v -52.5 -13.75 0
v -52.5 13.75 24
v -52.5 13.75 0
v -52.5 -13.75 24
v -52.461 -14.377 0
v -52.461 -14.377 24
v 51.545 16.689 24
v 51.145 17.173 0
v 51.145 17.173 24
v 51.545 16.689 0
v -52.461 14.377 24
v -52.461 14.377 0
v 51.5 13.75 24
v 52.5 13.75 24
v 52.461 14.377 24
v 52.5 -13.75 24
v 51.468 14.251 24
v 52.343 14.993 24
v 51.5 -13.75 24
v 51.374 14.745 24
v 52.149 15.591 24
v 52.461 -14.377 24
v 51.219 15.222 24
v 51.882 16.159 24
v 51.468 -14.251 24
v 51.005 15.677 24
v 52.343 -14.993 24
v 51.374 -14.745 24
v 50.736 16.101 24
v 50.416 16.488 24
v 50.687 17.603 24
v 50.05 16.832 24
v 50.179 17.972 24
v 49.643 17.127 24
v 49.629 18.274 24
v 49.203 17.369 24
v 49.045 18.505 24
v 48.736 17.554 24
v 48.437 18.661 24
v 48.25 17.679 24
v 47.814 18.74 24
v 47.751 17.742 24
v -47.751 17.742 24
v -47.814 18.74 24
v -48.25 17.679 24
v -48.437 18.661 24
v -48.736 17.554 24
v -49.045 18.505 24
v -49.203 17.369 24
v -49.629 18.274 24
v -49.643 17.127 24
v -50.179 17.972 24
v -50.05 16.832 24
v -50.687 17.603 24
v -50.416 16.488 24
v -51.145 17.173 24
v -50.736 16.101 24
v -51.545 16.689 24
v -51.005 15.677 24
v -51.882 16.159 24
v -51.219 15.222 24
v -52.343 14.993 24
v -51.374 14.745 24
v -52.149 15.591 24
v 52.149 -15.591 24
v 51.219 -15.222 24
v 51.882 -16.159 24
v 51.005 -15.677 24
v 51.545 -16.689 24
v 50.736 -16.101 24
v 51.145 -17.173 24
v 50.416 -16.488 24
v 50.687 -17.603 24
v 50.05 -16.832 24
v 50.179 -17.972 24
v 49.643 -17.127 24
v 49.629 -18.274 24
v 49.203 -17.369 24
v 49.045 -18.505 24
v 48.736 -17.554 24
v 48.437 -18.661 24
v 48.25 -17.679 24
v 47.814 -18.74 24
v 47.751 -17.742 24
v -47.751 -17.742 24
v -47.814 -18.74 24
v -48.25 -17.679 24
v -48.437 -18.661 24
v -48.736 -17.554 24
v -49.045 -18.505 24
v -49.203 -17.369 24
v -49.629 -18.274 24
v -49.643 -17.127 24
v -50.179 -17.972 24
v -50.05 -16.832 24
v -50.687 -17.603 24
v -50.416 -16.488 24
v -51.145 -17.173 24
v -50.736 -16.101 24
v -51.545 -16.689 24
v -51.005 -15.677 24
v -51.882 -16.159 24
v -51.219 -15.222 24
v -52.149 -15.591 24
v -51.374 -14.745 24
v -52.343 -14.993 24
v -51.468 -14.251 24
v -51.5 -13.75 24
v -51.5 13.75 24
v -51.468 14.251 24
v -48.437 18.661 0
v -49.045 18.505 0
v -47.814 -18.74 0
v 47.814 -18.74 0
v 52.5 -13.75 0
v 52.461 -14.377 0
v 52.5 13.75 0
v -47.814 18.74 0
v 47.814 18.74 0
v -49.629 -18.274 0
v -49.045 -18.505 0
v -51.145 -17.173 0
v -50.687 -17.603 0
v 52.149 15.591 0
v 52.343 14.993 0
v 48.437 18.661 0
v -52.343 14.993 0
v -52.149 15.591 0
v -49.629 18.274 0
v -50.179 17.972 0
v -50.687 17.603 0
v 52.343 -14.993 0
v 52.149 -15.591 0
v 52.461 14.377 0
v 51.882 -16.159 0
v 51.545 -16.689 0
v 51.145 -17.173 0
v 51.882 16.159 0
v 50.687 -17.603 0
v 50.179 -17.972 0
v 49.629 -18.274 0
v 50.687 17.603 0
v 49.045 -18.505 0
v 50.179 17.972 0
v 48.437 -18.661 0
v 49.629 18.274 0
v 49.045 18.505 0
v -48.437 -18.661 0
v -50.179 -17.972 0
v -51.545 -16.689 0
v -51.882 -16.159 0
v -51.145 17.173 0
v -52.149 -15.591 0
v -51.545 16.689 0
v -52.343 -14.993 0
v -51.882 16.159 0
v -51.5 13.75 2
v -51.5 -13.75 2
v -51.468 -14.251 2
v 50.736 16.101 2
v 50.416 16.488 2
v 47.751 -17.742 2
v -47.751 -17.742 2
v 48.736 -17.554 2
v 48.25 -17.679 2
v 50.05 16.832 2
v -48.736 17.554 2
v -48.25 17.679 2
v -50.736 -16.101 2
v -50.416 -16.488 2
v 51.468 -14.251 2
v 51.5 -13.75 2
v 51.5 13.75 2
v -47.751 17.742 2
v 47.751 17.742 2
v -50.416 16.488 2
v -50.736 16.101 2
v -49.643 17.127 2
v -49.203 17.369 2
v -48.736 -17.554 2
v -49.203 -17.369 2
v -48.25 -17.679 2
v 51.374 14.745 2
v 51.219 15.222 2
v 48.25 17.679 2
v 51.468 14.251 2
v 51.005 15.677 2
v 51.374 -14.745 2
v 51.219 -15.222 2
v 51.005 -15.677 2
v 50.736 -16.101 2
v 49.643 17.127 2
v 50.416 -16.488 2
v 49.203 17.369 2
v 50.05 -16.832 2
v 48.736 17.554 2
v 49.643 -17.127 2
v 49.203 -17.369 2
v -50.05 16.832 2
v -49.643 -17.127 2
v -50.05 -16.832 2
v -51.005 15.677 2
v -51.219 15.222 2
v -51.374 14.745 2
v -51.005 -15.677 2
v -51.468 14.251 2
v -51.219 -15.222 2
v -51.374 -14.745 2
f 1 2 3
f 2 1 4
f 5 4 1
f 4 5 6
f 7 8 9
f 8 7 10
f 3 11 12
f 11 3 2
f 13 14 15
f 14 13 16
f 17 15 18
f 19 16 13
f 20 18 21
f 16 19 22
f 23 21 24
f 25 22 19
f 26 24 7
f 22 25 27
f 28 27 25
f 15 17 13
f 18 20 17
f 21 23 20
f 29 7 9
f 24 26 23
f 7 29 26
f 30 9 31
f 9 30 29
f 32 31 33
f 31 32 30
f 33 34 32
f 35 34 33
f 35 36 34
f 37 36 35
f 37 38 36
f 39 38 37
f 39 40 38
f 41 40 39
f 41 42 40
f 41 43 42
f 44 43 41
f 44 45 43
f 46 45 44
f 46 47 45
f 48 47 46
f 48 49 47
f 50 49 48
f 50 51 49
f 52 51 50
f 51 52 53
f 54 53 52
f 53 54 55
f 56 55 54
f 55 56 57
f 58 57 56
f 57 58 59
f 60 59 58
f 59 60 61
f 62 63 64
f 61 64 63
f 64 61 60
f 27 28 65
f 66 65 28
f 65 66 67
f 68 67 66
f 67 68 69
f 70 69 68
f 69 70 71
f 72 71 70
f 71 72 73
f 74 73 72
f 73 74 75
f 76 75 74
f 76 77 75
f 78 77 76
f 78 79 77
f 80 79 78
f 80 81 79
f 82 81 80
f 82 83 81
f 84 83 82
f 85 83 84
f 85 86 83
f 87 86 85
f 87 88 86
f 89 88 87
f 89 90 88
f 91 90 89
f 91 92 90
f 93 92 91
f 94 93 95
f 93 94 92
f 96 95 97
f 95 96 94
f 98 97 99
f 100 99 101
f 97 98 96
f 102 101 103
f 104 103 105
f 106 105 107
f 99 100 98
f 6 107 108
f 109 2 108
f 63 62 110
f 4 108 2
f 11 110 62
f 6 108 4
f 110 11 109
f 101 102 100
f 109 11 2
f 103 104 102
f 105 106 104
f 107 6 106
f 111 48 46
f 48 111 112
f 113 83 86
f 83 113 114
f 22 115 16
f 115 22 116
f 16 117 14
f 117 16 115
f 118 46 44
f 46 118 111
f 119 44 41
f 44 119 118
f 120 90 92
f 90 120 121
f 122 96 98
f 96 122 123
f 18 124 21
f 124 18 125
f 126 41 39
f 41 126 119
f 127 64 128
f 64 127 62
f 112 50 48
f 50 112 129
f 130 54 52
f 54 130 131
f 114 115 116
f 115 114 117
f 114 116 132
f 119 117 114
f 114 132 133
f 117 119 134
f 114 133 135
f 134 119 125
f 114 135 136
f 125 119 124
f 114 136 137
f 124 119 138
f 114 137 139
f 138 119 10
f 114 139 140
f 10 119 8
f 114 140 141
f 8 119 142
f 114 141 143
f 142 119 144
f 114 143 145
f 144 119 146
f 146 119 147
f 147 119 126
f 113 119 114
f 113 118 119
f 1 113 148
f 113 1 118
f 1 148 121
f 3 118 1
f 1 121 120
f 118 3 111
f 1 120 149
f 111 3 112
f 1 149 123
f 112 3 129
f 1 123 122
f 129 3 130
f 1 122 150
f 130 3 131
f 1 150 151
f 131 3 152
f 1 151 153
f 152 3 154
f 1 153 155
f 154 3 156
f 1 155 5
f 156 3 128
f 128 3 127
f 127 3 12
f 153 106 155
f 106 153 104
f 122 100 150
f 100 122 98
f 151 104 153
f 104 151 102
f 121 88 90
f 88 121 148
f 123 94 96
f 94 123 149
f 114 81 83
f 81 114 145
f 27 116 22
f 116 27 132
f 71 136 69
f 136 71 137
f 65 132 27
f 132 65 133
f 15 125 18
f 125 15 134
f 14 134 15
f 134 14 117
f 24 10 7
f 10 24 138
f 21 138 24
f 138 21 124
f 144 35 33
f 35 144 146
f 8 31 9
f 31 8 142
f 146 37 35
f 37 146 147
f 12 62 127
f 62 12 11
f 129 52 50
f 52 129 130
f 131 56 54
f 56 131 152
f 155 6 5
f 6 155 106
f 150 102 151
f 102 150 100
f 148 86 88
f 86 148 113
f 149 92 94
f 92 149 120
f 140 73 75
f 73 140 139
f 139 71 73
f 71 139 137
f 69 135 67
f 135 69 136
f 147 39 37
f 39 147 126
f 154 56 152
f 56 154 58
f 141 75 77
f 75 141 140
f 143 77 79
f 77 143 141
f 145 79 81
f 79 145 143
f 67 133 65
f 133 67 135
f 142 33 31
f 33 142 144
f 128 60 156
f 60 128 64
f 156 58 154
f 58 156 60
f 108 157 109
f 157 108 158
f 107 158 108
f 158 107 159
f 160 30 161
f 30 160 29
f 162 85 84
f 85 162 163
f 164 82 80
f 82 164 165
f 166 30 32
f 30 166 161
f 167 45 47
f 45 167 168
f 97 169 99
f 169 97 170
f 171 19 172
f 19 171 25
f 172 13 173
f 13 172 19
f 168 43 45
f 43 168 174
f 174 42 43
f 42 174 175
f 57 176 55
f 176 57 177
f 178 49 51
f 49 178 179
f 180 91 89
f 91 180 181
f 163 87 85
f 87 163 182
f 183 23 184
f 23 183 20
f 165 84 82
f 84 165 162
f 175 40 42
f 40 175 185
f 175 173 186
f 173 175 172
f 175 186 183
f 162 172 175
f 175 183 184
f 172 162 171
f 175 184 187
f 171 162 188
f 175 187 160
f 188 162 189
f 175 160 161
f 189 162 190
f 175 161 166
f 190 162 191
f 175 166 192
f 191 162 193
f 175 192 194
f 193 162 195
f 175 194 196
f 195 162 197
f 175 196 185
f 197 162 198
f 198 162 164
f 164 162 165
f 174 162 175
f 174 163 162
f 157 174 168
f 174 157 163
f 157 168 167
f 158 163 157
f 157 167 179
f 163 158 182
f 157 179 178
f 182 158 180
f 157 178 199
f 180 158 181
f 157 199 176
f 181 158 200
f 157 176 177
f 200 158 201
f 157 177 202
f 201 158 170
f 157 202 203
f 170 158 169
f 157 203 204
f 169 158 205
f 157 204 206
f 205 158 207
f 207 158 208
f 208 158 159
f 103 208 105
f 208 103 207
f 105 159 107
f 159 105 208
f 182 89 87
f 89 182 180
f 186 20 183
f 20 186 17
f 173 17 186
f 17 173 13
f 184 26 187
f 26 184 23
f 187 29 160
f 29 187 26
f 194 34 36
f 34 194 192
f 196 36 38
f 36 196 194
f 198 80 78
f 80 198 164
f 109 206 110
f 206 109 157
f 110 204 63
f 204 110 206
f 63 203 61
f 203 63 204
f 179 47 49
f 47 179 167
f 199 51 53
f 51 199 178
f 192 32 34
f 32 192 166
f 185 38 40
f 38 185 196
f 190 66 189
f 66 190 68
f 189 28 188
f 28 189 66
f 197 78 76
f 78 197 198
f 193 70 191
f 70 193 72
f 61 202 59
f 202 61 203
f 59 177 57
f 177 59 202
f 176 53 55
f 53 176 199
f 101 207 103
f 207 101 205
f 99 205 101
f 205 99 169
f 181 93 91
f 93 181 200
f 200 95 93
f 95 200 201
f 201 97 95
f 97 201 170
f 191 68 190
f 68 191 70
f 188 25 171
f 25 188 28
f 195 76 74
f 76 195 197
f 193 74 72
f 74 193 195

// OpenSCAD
$fn = 50;


difference() {
	union() {
		hull() {
			translate(v = [-47.5000000000, 13.7500000000, 0]) {
				cylinder(h = 24, r = 5);
			}
			translate(v = [47.5000000000, 13.7500000000, 0]) {
				cylinder(h = 24, r = 5);
			}
			translate(v = [-47.5000000000, -13.7500000000, 0]) {
				cylinder(h = 24, r = 5);
			}
			translate(v = [47.5000000000, -13.7500000000, 0]) {
				cylinder(h = 24, r = 5);
			}
		}
	}
	union() {
		translate(v = [0, 0, 2]) {
			hull() {
				translate(v = [-47.5000000000, 13.7500000000, 0]) {
					cylinder(h = 22, r = 4);
				}
				translate(v = [47.5000000000, 13.7500000000, 0]) {
					cylinder(h = 22, r = 4);
				}
				translate(v = [-47.5000000000, -13.7500000000, 0]) {
					cylinder(h = 22, r = 4);
				}
				translate(v = [47.5000000000, -13.7500000000, 0]) {
					cylinder(h = 22, r = 4);
				}
			}
		}
	}
}
